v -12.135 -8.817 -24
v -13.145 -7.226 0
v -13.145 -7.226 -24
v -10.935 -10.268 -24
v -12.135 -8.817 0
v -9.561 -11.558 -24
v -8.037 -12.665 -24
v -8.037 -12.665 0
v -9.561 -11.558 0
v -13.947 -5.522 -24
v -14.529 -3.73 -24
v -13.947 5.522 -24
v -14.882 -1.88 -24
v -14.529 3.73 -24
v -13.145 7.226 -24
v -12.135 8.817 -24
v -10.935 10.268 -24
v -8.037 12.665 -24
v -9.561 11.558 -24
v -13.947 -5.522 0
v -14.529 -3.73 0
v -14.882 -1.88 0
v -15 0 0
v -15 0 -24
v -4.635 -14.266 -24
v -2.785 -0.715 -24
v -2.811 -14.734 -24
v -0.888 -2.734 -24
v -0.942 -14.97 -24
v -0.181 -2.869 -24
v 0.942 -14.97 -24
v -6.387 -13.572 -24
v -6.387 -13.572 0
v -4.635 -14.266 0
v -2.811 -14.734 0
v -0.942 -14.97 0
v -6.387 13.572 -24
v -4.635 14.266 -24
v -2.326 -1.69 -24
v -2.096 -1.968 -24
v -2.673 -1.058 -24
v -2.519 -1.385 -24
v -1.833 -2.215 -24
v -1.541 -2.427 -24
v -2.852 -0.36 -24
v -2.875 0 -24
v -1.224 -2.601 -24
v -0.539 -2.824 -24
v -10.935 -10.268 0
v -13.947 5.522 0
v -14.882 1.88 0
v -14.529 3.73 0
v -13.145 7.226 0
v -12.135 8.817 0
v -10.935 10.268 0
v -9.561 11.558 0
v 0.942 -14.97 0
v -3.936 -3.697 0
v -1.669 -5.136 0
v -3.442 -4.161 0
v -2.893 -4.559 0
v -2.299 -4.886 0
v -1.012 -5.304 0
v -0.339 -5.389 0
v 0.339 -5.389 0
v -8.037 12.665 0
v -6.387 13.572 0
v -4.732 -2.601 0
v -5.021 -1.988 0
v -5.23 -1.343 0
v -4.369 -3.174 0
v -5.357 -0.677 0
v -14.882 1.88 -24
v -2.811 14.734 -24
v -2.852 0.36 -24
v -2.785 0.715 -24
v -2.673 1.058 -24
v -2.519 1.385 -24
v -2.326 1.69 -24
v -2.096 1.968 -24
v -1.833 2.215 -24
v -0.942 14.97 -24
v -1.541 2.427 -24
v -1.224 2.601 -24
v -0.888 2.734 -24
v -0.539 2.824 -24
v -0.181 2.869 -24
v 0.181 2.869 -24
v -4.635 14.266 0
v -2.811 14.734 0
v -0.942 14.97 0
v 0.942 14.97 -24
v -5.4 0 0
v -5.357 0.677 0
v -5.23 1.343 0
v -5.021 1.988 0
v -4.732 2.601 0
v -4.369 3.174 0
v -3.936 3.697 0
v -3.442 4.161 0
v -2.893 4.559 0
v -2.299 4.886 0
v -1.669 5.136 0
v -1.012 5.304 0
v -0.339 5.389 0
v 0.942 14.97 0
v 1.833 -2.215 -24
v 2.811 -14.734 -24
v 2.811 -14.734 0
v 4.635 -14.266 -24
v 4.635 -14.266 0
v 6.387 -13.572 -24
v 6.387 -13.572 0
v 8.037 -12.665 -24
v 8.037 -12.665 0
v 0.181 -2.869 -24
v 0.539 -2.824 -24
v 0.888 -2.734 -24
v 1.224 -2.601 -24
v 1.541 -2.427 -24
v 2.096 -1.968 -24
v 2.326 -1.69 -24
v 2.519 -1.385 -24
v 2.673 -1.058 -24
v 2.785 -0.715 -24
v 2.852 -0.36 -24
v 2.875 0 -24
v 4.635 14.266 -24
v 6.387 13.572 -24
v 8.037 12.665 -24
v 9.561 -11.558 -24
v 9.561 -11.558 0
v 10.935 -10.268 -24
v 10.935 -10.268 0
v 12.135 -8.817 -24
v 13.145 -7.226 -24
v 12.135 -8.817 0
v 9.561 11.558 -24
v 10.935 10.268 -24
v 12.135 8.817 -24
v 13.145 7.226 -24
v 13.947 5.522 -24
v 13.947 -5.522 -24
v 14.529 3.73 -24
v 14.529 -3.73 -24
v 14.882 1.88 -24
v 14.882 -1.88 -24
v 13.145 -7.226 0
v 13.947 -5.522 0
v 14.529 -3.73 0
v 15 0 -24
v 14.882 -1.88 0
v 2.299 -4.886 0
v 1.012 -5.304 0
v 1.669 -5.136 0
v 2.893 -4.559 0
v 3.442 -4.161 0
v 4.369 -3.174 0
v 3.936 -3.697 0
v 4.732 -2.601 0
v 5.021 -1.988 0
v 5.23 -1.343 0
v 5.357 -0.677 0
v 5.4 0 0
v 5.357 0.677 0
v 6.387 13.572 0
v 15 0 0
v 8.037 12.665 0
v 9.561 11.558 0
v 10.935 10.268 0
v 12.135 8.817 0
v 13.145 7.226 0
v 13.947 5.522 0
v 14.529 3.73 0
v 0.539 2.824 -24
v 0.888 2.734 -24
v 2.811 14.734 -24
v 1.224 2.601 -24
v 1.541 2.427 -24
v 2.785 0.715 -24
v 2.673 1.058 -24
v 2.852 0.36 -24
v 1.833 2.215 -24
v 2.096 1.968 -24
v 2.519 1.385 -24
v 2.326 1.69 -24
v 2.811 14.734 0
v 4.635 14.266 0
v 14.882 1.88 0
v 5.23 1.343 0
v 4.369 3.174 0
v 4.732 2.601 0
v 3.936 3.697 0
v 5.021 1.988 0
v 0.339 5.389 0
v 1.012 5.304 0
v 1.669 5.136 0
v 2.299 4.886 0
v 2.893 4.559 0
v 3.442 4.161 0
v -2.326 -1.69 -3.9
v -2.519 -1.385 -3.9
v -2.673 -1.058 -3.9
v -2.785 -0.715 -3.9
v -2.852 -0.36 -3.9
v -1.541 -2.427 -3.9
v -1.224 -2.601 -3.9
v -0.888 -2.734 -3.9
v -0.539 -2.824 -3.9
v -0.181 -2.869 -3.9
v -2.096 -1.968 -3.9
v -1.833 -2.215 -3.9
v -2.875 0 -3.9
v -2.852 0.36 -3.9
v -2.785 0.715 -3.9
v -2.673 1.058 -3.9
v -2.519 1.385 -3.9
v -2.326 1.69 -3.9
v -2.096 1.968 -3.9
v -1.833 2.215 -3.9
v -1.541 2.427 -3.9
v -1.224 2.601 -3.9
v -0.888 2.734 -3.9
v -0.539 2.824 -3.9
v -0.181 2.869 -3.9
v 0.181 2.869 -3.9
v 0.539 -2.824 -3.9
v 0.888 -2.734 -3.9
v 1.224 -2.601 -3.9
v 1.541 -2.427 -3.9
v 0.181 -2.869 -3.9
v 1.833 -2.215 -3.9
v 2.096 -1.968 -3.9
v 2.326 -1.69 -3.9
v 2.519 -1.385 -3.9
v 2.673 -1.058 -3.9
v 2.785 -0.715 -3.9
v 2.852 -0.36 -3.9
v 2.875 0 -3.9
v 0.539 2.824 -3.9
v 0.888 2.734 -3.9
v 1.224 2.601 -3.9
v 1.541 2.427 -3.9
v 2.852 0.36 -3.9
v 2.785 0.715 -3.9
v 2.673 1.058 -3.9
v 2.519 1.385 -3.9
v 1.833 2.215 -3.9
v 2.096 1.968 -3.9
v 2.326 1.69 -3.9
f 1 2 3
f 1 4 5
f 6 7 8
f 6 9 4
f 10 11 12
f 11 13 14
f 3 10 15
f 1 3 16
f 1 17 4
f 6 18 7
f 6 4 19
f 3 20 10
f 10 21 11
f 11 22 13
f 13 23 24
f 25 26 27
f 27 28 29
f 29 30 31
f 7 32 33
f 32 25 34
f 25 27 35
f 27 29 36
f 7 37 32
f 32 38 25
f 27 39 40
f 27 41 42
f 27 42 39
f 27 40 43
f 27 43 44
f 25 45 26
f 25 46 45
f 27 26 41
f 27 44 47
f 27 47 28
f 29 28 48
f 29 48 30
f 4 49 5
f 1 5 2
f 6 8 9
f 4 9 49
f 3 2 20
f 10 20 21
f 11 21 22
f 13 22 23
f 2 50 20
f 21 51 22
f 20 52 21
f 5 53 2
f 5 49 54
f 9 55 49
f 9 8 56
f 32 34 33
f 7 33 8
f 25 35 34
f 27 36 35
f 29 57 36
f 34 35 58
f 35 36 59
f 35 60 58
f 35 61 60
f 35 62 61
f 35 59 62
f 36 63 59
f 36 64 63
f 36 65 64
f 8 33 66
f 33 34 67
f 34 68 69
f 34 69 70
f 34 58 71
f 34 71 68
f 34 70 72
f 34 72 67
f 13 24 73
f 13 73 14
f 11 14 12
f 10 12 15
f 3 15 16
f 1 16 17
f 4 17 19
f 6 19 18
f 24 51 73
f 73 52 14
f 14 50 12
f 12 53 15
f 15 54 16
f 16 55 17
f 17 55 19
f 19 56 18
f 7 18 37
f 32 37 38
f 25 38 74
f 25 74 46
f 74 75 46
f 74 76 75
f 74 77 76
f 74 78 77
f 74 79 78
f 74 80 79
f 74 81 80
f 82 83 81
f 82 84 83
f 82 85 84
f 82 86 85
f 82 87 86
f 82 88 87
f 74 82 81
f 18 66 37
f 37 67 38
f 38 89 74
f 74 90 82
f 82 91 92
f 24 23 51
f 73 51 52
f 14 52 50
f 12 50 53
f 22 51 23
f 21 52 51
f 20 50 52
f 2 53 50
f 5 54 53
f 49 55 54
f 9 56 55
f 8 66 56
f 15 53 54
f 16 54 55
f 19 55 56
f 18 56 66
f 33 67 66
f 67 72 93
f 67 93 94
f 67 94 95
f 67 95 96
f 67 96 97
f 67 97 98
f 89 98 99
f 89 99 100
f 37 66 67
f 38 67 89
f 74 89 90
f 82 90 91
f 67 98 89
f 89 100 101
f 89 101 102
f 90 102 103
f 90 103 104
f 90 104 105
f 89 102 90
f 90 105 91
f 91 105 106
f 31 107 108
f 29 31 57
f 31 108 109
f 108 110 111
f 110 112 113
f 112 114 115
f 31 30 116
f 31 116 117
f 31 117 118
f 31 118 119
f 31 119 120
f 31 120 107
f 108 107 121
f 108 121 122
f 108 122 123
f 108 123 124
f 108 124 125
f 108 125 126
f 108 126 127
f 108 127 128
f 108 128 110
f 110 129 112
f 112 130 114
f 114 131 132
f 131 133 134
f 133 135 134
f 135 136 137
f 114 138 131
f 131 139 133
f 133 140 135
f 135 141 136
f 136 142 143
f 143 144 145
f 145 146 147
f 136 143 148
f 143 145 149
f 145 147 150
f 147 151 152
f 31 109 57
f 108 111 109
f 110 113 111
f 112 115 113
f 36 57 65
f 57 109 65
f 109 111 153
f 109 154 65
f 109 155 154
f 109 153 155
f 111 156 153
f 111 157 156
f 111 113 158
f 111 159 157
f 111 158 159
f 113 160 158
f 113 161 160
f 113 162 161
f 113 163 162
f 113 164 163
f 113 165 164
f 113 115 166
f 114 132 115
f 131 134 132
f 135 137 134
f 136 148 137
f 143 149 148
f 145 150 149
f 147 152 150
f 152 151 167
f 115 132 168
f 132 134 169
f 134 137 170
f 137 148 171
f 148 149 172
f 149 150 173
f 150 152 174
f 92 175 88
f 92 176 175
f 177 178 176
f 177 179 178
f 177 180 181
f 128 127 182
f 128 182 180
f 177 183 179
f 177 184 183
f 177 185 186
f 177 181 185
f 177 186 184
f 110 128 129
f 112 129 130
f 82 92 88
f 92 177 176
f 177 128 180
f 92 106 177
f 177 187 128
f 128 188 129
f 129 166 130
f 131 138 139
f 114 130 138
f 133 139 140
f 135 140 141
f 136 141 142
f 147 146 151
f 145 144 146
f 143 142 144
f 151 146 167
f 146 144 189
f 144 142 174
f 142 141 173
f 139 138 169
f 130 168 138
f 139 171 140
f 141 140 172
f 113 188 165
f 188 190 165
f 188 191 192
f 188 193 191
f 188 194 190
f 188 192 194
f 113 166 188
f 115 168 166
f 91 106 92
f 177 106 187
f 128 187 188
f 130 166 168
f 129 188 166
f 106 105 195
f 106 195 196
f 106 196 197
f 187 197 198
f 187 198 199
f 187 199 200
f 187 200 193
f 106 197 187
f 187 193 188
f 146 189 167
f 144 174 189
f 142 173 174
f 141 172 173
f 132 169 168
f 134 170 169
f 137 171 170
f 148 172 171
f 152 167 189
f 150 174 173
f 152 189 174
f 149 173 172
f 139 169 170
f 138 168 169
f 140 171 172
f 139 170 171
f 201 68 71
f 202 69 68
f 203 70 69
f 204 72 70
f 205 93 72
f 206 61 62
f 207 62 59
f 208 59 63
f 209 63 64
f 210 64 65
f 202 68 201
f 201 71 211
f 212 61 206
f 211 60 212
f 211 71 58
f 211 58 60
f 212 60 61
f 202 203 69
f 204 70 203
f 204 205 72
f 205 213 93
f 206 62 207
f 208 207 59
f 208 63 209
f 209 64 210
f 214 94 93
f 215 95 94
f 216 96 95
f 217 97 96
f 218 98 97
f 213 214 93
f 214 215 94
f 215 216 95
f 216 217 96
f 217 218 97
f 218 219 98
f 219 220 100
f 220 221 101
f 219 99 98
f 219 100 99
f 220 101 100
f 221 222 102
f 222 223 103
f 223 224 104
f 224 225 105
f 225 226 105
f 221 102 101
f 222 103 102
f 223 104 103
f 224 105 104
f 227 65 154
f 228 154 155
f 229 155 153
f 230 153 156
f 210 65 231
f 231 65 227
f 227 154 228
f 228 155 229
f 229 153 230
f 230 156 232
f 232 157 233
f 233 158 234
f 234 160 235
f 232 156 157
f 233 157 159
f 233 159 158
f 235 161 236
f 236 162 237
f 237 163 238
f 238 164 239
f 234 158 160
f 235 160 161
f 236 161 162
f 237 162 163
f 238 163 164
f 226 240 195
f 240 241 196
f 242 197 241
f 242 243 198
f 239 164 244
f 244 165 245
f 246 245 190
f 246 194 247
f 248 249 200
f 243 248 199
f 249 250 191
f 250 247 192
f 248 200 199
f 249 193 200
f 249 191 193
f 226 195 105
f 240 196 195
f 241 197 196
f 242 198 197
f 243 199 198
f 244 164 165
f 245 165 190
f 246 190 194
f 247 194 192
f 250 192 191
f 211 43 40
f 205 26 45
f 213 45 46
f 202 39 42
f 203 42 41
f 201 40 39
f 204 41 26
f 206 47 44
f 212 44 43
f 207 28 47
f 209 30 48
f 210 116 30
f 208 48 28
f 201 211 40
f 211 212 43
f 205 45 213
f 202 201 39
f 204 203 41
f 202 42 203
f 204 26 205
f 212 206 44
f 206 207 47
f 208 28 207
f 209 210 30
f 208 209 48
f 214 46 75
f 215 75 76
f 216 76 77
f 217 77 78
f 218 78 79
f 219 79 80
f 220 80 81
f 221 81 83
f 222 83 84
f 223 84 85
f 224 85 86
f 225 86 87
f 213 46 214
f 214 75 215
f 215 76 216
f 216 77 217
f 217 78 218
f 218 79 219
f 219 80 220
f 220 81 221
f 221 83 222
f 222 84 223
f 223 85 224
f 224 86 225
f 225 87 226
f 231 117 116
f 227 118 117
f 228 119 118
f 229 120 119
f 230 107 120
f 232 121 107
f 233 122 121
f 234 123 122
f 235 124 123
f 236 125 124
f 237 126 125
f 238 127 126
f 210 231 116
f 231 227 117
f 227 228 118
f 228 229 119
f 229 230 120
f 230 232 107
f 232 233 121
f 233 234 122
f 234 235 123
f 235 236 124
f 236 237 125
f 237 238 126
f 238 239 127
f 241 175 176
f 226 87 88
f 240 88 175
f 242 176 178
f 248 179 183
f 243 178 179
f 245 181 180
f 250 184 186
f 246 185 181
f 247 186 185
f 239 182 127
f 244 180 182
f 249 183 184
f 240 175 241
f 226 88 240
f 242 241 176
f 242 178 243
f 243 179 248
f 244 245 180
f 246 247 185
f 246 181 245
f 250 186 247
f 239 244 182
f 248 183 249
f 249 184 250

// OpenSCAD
$fn = 50;

difference() {
	union() {
		translate(v = [0, 0, -24.0]) {
			cylinder(h = 24, r = 15.0);
		}
		#translate(v = [0, 0, -27.0]) {
			cylinder(h = 27, r = 2.875);
		}
	}
	union() {
		translate(v = [0, 0, 0]) {
			rotate(a = [0, 0, 0]) {
				difference() {
					union() {
						translate(v = [0, 0, -27.0]) {
							cylinder(h = 27, r = 2.6);
						}
						translate(v = [0, 0, -3.9]) {
							cylinder(h = 3.9, r1 = 2.875, r2 = 5.4);
						}
						translate(v = [0, 0, -27.0]) {
							cylinder(h = 27, r = 2.875);
						}
						translate(v = [0, 0, -27.0]) {
							cylinder(h = 27, r = 2.6);
						}
					}
					union();
				}
			}
		}
	}
}
